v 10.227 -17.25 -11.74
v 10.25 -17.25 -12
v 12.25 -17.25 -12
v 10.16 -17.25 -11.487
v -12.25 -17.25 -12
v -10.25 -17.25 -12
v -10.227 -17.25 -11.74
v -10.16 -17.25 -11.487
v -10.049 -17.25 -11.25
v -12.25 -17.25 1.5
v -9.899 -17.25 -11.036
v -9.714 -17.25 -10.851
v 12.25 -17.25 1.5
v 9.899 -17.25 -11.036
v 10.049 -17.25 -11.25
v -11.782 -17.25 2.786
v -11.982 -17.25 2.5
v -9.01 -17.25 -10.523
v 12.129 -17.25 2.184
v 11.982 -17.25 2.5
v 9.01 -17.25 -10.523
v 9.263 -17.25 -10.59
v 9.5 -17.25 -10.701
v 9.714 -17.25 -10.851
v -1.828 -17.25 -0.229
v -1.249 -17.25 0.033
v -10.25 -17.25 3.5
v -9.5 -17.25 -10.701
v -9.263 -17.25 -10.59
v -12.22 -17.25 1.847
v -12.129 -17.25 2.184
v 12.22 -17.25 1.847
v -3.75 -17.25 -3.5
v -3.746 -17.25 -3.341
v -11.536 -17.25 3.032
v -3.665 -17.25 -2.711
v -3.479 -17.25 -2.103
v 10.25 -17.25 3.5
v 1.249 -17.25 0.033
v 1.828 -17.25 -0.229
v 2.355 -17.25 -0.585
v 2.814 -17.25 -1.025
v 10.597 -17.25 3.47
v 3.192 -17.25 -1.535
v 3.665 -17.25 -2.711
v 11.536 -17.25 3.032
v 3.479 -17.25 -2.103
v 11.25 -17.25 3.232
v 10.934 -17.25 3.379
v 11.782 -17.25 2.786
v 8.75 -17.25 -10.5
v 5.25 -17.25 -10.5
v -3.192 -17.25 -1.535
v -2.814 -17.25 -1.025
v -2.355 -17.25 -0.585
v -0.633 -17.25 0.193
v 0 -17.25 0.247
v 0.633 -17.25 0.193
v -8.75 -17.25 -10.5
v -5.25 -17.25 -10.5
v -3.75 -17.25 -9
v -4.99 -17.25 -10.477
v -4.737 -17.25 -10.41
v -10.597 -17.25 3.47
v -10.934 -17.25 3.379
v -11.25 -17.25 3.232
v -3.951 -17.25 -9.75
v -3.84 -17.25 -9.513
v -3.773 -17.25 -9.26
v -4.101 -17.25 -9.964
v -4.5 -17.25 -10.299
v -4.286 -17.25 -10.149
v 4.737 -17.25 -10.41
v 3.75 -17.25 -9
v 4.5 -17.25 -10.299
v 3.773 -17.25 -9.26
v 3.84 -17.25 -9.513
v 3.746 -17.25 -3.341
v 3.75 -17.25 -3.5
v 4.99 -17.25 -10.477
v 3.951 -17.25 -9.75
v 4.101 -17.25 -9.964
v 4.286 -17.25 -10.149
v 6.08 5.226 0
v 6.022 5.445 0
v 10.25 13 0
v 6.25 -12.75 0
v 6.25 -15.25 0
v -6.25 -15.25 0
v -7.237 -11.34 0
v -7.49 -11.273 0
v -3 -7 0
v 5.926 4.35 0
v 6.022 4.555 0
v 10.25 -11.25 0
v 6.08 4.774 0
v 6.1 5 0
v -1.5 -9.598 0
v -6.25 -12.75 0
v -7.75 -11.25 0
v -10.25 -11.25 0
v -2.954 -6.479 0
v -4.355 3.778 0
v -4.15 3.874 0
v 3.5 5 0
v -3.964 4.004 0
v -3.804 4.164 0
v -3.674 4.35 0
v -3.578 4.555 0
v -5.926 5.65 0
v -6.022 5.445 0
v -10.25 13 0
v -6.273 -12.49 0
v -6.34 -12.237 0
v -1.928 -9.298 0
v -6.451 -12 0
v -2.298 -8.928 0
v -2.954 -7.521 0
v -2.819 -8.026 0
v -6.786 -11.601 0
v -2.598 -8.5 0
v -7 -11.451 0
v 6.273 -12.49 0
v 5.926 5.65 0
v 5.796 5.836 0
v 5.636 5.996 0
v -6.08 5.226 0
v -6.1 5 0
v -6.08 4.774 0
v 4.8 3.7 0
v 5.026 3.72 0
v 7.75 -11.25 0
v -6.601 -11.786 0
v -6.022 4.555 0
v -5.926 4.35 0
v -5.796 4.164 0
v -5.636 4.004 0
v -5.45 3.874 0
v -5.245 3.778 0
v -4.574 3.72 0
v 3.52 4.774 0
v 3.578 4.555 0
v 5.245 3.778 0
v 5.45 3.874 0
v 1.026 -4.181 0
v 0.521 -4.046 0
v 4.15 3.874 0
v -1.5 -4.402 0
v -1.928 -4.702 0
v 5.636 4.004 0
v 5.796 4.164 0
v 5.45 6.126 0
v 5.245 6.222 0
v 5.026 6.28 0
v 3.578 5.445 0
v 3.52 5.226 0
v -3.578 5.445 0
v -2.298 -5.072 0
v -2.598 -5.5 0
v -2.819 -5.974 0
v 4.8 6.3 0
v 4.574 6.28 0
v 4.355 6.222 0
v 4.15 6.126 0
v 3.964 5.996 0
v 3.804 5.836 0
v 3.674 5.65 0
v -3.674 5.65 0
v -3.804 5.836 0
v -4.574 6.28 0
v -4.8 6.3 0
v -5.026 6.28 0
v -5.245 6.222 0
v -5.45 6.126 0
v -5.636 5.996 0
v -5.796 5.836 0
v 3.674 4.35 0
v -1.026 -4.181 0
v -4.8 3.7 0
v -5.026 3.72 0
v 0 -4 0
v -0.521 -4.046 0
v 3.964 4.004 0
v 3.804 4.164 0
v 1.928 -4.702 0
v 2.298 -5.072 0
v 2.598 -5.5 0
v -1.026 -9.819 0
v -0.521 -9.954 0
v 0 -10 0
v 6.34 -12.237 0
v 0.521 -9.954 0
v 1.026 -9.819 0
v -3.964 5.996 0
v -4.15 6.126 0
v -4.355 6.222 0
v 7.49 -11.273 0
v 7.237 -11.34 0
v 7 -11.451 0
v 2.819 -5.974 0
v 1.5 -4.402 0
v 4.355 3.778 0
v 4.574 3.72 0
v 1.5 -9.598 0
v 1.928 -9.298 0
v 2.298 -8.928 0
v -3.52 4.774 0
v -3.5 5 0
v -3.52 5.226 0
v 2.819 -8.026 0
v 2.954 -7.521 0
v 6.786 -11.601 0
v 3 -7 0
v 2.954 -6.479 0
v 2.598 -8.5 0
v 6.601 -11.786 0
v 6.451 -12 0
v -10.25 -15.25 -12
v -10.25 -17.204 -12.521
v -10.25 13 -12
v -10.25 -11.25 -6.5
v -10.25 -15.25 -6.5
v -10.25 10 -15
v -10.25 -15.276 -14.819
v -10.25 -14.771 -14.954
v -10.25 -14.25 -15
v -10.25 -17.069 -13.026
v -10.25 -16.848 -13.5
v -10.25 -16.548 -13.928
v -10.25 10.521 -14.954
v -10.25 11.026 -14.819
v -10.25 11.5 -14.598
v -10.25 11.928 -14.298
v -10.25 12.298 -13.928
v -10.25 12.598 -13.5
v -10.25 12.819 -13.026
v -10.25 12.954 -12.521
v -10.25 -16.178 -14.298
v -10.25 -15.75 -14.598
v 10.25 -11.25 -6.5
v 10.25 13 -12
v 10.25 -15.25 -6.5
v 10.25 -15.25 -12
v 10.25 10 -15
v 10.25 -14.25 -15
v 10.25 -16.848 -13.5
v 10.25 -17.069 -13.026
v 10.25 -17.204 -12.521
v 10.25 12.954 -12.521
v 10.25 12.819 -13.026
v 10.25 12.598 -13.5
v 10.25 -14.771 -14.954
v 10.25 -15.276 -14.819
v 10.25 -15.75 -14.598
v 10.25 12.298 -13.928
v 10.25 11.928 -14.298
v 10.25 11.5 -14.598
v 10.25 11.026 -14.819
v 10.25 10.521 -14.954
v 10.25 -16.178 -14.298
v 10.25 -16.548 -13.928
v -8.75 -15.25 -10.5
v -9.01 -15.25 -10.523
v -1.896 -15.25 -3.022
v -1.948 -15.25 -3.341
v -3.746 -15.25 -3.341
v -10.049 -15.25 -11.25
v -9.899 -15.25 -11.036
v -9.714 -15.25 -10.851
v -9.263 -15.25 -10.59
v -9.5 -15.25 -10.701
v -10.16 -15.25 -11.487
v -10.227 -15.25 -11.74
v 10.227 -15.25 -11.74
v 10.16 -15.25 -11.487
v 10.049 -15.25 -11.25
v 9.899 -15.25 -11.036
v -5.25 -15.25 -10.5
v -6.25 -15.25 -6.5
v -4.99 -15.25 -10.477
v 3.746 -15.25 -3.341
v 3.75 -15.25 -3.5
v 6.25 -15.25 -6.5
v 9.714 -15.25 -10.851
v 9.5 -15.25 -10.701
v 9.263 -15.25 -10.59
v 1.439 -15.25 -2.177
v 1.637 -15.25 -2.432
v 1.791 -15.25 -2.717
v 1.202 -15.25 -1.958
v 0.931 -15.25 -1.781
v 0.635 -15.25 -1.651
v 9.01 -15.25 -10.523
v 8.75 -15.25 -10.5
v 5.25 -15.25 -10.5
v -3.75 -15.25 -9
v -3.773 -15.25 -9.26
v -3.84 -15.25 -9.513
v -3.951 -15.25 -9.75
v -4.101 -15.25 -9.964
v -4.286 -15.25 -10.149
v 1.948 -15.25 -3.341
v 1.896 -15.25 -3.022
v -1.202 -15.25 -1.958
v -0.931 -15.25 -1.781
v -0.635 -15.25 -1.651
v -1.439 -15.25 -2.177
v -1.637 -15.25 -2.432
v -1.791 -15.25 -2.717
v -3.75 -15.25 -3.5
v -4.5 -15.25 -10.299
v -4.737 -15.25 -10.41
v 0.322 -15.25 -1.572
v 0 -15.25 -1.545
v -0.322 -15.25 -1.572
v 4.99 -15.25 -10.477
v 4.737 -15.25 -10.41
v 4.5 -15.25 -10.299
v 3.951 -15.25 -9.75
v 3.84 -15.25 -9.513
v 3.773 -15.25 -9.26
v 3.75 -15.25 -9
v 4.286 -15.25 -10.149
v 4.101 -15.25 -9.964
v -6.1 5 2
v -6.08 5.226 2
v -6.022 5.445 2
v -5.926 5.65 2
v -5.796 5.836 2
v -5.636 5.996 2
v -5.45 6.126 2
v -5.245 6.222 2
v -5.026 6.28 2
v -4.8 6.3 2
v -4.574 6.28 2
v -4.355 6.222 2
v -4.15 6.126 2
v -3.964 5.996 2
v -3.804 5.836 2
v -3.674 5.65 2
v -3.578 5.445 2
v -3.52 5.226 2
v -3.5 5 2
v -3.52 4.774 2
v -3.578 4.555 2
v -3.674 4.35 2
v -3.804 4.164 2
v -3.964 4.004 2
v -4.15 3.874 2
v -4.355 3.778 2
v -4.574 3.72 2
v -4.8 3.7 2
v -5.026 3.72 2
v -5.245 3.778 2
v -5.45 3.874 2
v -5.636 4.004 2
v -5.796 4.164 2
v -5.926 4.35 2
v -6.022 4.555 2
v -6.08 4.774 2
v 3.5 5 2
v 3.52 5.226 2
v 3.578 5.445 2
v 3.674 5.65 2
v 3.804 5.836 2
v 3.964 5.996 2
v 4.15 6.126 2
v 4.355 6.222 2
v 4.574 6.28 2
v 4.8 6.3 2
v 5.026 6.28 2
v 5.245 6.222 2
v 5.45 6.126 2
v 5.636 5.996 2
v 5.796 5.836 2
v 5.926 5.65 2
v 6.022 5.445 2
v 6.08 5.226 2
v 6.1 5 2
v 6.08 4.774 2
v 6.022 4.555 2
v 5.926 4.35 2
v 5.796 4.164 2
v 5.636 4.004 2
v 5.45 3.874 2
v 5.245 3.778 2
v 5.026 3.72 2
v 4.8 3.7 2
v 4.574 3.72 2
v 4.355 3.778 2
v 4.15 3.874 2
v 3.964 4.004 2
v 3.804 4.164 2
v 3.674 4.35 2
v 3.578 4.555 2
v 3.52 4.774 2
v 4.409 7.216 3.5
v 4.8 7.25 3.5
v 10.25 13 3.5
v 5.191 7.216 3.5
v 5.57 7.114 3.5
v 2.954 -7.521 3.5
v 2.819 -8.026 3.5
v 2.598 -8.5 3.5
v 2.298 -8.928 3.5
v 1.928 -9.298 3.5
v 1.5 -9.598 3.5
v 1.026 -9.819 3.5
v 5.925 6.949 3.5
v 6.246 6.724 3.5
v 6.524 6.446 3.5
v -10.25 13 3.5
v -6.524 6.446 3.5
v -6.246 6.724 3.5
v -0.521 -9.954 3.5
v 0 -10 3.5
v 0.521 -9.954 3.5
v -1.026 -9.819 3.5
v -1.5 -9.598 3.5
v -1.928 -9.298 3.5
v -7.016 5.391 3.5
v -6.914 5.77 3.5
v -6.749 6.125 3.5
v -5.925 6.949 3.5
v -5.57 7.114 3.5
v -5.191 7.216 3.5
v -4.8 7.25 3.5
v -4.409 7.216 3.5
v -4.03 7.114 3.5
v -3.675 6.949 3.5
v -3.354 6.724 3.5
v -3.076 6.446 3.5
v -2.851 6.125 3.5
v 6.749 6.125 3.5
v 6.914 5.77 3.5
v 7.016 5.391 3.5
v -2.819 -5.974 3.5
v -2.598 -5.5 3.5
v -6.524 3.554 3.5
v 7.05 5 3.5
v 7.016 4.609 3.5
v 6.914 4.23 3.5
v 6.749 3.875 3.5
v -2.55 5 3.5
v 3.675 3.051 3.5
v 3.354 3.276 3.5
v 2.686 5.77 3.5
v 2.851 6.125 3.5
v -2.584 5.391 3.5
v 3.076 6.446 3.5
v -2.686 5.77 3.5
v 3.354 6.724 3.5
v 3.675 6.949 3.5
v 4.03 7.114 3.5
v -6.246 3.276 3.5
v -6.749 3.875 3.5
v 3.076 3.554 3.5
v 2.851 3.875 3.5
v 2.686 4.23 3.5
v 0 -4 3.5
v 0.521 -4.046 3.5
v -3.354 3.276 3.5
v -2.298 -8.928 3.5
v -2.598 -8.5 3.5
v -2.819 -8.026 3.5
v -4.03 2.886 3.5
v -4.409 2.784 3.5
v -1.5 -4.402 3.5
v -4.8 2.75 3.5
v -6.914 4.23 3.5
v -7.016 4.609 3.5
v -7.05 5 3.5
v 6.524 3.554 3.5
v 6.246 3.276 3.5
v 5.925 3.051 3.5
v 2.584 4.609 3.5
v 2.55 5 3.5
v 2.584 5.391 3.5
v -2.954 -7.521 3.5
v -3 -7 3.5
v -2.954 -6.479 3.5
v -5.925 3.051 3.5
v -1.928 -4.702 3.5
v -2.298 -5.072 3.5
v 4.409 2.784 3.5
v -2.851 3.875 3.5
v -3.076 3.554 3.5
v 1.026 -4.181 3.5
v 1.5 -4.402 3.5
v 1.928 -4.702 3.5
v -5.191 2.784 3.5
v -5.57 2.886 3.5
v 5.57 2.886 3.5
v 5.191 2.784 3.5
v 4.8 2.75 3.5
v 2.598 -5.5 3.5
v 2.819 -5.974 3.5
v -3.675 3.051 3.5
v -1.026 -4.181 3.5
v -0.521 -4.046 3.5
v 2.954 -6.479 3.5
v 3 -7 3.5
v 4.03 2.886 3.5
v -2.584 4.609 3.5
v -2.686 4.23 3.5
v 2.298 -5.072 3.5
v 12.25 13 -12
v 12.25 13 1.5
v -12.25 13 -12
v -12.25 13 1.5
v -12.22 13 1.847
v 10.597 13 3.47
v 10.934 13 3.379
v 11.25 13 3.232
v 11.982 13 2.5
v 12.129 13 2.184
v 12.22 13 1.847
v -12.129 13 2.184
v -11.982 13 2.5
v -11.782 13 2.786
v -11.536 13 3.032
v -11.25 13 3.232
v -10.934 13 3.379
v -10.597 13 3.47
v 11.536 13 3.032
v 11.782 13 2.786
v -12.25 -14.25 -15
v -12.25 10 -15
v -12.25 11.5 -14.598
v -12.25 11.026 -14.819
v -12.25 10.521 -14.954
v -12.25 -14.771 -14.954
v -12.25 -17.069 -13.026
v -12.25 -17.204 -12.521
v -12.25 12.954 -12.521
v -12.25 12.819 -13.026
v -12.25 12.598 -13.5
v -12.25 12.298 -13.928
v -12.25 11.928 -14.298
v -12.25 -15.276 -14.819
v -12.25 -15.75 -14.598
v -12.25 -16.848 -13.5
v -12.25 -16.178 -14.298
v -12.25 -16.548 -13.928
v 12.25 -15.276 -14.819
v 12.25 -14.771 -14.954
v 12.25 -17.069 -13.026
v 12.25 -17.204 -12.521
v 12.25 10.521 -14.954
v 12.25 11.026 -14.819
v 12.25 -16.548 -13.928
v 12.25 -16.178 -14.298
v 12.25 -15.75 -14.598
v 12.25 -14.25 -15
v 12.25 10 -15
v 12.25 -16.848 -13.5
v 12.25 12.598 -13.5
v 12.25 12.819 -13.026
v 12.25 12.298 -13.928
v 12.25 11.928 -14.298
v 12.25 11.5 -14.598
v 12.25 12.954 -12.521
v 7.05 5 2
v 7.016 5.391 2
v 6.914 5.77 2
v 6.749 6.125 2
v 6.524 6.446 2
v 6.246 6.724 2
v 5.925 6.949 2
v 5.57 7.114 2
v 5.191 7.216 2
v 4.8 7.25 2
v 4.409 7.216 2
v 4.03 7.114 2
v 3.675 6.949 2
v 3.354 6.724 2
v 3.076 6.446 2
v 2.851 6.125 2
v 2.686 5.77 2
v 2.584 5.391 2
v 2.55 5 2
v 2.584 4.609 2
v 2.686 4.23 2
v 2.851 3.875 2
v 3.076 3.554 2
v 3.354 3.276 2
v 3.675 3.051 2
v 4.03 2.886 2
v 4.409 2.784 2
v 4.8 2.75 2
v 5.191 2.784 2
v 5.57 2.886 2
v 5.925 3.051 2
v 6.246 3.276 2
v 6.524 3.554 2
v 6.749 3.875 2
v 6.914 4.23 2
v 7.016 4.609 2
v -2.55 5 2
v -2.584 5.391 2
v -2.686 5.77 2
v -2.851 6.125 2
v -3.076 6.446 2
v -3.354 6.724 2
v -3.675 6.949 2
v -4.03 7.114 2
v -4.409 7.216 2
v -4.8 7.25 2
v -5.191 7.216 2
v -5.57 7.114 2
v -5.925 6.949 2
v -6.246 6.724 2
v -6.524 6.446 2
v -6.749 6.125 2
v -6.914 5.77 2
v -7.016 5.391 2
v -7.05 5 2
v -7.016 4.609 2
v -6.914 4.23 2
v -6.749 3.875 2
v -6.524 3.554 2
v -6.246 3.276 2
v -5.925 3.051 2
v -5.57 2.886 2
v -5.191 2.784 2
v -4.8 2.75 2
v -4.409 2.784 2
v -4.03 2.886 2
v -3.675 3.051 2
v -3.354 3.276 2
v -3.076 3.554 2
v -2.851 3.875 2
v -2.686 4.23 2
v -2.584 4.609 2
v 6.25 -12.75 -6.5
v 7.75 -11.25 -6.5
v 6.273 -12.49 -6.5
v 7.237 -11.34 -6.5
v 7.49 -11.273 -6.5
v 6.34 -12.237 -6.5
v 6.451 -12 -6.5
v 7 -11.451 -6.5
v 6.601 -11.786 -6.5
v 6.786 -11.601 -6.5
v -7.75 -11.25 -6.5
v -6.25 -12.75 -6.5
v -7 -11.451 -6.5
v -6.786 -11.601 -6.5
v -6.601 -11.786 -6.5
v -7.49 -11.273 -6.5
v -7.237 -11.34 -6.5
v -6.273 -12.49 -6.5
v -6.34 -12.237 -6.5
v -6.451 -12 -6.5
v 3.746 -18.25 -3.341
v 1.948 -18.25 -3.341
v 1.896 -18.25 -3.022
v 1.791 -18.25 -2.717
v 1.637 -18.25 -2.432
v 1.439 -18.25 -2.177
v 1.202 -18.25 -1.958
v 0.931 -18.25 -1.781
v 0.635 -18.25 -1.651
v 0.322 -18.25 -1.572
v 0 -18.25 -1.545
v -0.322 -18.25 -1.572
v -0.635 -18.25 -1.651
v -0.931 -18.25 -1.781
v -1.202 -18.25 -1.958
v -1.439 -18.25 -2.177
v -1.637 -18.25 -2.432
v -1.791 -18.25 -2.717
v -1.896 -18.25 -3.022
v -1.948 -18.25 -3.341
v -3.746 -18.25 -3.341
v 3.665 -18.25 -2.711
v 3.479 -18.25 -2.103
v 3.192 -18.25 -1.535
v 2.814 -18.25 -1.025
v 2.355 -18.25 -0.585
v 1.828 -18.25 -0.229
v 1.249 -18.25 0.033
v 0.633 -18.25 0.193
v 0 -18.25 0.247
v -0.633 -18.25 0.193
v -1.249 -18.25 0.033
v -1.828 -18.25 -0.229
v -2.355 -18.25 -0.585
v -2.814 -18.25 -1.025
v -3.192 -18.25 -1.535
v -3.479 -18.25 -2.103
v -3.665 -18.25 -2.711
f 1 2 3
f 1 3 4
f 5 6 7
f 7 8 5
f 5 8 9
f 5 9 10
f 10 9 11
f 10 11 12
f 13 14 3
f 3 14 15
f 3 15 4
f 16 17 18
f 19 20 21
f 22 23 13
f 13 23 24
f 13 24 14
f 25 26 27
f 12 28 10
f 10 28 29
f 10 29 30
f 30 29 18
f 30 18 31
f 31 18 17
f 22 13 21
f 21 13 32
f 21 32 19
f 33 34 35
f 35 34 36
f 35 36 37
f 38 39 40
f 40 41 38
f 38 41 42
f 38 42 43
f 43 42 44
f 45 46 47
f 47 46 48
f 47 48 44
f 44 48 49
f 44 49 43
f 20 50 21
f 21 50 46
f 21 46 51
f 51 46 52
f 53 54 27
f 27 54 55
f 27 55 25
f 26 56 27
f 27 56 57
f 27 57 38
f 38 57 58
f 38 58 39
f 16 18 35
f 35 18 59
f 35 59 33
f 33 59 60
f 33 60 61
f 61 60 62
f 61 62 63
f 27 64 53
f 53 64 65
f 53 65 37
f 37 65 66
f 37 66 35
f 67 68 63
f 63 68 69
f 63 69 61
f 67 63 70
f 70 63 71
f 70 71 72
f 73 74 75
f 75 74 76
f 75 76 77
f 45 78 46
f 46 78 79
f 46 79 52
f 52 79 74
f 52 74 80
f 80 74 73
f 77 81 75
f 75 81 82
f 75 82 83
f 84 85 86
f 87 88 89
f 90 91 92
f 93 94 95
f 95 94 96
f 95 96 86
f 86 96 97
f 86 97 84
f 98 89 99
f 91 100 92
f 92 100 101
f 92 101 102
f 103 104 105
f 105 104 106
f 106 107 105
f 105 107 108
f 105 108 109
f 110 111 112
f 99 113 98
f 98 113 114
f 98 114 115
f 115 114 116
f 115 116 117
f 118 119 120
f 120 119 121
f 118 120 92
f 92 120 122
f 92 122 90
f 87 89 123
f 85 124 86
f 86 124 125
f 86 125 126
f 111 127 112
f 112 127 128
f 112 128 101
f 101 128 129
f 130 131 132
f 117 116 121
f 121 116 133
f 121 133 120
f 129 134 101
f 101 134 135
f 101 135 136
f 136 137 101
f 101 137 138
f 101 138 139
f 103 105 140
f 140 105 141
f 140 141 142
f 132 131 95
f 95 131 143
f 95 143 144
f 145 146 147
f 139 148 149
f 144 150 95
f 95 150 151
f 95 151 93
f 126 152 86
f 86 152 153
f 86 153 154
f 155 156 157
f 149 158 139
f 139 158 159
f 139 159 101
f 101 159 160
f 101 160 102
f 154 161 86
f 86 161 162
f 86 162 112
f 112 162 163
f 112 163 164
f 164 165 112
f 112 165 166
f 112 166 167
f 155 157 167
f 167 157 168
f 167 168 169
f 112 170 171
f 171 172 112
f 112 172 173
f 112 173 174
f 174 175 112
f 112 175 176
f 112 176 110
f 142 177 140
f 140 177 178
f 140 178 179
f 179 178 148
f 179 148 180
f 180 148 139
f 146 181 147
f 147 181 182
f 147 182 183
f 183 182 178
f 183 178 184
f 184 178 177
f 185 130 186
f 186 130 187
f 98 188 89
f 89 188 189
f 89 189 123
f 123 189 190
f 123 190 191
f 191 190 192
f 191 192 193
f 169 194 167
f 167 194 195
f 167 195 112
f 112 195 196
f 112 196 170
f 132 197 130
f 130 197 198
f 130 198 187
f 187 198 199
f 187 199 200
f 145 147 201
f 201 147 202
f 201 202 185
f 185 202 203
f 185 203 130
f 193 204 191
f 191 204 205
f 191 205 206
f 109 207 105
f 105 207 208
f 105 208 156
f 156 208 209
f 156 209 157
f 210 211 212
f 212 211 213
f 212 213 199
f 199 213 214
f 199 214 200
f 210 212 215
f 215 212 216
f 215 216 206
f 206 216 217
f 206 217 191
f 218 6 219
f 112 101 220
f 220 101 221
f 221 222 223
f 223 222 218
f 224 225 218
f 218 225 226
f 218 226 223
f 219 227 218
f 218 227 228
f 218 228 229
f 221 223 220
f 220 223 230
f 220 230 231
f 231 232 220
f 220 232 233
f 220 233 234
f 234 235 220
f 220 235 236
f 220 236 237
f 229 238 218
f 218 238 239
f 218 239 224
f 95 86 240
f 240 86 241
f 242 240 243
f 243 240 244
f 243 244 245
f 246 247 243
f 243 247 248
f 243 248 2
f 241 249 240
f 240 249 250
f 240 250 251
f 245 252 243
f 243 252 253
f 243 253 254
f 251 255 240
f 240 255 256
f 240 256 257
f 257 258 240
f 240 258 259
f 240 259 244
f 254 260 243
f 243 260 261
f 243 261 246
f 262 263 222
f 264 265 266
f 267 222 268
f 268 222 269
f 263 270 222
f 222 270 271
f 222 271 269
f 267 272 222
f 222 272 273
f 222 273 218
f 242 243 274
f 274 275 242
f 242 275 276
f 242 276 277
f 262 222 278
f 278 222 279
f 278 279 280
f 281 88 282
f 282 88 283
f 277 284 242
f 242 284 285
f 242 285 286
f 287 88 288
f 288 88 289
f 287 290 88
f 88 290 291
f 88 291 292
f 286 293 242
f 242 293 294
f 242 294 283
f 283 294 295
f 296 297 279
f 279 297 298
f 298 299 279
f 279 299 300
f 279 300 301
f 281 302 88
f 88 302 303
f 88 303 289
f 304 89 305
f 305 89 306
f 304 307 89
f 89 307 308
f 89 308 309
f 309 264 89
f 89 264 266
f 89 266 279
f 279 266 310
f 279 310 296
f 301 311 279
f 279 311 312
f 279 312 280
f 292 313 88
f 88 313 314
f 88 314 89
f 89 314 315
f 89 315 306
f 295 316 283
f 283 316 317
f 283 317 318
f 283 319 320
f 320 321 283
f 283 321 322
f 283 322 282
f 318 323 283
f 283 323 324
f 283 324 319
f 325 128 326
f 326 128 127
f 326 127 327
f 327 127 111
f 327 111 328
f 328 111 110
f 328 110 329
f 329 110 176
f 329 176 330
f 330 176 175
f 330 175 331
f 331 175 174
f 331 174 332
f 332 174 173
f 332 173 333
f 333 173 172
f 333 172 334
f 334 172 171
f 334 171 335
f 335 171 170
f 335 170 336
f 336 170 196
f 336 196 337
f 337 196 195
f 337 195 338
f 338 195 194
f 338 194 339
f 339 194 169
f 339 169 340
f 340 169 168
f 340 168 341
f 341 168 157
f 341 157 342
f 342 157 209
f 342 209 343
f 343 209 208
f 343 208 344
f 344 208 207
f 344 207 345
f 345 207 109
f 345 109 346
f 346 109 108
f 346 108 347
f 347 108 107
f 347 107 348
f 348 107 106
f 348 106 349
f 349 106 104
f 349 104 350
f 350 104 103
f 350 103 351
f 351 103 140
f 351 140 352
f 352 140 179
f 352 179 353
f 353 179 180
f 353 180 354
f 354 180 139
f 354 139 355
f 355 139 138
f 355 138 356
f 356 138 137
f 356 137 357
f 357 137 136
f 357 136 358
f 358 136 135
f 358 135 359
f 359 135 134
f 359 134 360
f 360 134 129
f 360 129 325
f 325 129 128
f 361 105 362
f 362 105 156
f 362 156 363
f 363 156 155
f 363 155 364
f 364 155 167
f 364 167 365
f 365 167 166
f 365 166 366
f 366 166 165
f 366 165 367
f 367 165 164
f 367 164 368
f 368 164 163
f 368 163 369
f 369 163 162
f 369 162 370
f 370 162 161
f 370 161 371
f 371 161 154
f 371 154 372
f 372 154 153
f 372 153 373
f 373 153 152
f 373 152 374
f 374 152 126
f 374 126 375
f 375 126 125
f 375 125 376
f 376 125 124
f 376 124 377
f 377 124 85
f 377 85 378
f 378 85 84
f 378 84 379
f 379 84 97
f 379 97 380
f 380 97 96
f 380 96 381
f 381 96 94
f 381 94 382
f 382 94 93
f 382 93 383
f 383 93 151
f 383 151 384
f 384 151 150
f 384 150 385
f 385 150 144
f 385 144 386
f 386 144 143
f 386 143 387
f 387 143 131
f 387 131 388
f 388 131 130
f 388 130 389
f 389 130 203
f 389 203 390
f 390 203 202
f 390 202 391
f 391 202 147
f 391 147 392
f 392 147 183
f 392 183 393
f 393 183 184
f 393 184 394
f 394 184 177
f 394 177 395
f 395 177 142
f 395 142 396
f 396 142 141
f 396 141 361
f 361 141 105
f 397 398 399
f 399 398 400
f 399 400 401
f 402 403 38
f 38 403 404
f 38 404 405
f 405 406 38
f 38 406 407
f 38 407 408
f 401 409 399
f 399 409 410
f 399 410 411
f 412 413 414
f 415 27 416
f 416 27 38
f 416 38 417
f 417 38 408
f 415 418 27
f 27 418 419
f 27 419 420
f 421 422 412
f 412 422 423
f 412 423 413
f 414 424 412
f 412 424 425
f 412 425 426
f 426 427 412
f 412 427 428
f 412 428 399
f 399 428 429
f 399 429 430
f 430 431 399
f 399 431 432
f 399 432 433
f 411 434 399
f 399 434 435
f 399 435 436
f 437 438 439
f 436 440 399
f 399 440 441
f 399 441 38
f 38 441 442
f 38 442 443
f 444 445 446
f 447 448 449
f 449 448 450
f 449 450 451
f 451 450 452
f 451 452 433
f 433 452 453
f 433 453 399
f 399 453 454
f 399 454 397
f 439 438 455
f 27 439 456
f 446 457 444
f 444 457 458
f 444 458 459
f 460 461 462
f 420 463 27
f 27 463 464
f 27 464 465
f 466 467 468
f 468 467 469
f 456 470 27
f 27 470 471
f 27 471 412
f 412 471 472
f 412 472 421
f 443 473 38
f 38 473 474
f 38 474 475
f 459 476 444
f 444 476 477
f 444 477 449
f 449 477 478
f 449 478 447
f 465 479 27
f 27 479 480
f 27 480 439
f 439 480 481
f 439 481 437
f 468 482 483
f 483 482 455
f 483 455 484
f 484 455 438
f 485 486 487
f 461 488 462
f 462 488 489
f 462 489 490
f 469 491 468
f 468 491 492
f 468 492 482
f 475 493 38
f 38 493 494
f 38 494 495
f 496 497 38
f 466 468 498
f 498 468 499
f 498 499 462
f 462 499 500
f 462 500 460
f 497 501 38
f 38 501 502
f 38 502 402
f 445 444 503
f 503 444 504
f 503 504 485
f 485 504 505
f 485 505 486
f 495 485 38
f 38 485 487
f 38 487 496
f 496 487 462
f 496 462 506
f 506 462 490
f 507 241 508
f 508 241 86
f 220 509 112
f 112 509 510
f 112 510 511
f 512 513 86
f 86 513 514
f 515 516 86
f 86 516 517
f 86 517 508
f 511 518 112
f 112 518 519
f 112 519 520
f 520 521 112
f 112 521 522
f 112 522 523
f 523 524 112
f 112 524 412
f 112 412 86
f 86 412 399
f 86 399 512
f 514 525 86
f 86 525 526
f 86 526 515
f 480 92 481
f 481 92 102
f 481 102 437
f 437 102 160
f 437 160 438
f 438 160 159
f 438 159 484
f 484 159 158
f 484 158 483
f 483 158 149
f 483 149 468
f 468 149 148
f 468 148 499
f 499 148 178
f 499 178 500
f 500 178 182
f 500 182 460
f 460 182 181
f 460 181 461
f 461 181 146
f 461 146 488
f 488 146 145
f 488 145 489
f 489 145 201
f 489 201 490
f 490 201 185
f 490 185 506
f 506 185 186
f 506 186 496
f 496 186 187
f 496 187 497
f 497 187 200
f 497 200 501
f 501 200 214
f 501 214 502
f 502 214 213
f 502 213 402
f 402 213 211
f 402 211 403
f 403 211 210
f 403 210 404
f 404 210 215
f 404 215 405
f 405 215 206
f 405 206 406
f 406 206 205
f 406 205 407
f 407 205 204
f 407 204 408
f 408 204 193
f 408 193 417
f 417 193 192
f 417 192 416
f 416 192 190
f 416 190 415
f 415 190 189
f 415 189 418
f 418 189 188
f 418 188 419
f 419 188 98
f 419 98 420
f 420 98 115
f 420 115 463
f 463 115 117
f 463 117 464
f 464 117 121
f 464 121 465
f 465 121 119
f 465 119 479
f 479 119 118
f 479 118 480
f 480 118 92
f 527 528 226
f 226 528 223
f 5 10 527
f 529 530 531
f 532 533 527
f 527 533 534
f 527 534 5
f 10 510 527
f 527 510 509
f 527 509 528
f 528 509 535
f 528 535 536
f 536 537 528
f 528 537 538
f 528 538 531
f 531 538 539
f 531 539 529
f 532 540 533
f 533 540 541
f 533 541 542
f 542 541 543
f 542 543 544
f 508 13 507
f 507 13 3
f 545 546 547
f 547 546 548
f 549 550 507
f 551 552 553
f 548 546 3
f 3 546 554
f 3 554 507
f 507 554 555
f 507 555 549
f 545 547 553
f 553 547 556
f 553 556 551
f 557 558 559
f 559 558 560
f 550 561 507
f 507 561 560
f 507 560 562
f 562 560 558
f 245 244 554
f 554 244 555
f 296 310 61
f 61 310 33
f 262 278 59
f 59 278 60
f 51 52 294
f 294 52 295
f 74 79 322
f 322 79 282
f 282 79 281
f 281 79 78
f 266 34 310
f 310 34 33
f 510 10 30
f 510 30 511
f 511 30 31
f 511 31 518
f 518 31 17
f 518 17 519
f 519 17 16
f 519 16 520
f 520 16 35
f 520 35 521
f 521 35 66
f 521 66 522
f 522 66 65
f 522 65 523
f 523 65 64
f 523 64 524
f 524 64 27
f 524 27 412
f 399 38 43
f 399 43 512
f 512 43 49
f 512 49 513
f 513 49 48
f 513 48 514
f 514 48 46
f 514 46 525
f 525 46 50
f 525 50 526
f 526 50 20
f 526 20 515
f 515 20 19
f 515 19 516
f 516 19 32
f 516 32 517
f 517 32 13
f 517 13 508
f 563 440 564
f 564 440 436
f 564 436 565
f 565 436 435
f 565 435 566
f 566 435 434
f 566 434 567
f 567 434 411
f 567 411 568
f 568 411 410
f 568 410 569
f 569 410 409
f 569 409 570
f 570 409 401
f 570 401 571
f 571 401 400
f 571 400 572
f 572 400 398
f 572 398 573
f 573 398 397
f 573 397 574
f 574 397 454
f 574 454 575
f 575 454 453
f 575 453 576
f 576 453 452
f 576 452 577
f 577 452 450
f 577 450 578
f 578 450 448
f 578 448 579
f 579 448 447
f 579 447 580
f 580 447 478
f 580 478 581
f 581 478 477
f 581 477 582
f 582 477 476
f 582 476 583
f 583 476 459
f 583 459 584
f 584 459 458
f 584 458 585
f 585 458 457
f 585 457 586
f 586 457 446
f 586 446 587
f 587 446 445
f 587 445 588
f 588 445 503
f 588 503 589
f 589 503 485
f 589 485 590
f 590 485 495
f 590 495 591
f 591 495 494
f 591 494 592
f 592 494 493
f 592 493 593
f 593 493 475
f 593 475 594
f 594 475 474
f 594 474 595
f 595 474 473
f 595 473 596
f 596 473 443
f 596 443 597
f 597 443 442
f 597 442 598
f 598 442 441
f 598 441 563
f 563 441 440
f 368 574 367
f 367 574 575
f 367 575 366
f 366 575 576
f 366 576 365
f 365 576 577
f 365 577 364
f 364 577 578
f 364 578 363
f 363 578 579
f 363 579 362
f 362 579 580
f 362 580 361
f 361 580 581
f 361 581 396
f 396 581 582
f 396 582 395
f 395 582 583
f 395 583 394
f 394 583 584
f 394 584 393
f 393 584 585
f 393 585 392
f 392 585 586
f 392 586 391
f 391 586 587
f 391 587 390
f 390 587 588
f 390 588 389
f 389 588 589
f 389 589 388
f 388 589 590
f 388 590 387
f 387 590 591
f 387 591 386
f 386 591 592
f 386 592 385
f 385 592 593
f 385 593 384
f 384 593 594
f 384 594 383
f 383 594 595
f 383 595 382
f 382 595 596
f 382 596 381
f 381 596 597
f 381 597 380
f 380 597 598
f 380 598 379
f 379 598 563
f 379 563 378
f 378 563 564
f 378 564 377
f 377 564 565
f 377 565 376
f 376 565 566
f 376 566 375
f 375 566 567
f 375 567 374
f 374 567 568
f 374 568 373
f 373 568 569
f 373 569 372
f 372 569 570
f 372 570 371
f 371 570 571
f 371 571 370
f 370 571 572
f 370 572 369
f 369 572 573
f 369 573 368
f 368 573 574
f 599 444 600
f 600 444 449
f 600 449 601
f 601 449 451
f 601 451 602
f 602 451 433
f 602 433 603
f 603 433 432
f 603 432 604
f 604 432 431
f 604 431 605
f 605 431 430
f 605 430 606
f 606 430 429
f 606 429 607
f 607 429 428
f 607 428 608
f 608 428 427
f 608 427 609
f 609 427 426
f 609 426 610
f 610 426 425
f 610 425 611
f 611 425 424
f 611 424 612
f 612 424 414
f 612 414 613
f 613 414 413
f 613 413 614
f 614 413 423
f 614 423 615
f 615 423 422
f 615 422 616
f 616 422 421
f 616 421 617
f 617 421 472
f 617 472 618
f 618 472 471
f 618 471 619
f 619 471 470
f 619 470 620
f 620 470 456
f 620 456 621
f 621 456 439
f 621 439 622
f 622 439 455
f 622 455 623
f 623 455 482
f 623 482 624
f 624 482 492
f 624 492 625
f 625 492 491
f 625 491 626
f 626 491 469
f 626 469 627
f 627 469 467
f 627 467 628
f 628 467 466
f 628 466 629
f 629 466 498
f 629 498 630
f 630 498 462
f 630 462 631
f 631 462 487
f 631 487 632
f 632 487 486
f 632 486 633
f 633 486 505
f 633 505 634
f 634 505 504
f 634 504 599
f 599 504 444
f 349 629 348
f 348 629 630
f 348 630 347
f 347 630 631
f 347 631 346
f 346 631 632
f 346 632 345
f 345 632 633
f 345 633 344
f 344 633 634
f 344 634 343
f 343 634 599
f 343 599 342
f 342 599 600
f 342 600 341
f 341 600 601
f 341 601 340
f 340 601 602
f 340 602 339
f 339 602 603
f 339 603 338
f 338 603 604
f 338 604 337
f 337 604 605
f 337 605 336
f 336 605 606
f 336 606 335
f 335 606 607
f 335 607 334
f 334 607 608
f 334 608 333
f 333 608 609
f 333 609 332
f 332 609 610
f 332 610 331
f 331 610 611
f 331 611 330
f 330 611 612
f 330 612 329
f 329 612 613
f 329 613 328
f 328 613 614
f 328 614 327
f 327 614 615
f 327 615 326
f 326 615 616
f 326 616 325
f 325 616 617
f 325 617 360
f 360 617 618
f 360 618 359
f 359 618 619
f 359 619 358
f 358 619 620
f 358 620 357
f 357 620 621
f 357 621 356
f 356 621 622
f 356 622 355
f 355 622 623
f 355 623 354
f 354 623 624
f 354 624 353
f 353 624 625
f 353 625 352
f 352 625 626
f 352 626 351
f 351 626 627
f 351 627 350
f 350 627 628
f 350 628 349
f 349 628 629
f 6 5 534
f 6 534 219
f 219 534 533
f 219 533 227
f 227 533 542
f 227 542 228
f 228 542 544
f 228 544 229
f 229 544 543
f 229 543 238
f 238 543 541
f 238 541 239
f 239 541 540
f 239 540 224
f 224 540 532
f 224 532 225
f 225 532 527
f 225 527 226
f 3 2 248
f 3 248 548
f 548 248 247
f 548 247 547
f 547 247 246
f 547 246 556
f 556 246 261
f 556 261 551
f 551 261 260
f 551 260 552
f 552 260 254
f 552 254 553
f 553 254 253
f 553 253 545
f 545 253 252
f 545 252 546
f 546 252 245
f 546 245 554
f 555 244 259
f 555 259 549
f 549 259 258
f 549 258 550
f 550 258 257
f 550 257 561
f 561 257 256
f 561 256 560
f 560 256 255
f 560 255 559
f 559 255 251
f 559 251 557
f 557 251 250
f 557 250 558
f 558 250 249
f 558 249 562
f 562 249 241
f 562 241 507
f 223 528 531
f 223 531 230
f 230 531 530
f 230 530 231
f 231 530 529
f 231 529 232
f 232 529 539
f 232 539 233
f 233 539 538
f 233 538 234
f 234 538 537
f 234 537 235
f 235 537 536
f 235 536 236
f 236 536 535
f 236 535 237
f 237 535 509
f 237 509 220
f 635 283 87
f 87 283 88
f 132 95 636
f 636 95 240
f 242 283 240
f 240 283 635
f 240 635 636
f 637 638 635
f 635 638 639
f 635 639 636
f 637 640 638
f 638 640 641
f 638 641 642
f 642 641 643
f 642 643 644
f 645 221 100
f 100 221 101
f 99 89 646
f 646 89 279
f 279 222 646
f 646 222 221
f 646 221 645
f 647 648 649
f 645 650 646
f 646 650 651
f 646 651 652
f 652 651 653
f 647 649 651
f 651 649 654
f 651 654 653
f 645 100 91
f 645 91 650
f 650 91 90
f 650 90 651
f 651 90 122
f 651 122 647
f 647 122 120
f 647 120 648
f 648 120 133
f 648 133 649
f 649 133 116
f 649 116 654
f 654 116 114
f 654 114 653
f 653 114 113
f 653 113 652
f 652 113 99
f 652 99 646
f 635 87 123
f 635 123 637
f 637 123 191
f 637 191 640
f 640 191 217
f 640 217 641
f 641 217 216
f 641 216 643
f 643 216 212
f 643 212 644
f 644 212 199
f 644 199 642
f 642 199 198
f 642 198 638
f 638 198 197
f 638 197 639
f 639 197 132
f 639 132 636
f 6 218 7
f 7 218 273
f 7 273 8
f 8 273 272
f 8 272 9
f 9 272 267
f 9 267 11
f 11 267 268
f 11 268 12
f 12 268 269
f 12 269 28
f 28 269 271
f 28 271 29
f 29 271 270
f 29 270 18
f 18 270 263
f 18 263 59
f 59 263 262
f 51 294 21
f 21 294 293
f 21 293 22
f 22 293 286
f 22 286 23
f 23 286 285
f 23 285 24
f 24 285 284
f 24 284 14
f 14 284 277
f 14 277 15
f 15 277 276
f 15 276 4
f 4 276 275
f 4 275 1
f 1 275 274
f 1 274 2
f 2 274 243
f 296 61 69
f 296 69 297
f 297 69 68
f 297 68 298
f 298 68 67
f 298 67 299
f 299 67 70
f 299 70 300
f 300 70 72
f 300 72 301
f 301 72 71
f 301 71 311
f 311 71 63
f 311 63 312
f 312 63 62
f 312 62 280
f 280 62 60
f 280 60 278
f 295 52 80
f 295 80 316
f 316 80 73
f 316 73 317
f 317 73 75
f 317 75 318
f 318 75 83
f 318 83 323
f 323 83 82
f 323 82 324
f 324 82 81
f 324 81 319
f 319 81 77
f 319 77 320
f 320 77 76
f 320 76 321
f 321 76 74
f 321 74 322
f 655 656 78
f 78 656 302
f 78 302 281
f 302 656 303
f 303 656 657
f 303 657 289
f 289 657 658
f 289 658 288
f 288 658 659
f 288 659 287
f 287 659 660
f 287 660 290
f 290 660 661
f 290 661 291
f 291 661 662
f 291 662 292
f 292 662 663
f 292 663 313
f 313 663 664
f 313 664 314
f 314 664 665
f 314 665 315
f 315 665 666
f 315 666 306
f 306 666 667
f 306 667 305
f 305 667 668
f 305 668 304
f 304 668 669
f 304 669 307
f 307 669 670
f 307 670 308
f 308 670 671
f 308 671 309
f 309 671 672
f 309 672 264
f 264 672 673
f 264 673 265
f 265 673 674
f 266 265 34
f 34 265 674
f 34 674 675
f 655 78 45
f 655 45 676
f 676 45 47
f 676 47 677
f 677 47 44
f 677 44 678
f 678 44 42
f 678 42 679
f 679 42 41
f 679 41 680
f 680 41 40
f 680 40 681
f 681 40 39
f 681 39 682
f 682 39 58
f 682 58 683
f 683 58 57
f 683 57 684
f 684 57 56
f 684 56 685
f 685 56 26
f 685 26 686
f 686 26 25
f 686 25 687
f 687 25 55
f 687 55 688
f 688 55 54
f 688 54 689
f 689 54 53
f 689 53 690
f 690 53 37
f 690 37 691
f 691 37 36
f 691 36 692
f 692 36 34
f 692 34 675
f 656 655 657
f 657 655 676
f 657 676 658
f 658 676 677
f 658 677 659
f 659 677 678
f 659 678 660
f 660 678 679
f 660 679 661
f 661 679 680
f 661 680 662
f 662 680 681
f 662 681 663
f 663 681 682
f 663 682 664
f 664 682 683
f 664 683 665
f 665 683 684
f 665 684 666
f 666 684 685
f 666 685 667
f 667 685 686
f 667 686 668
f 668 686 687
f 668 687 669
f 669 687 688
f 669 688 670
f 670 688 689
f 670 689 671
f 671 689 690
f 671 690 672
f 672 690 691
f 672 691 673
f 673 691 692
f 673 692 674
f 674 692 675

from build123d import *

# Parameters (mm, degrees)
SKETCH1_W           = 20.5
SKETCH1_H           = 30.25
SKETCH1_R           = 1.3
SKETCH1_R_2         = 3
BOSS_EXTRUDE1_DEPTH = 3.5
SKETCH2_W           = 2
SKETCH2_H           = 18.5
BOSS_EXTRUDE2_DEPTH = 30.25
SKETCH3_W           = 6.5
SKETCH3_H           = 10.5
BOSS_EXTRUDE3_DEPTH = 2
FILLET1_R           = 3.5
FILLET2_R           = 2
SKETCH4_R           = 2.25
CUT_EXTRUDE1_DEPTH  = 1.5
FILLET4_R           = 3
SKETCH9_W           = 4
SKETCH9_H           = 4
BOSS_EXTRUDE4_DEPTH = 6.5
FILLET6_R           = 1.5
BOSS_EXTRUDE5_DEPTH = 2
BOSS_EXTRUDE6_DEPTH = 1


with BuildPart() as part:
    # Sketch1 → Boss-Extrude1 (new body)
    with BuildSketch(Plane.XY):
        with Locations((0, -2.125)):
            Rectangle(SKETCH1_W, SKETCH1_H)
        with Locations((-4.8, 5)):
            Circle(SKETCH1_R, mode=Mode.SUBTRACT)
        with Locations((4.8, 5)):
            Circle(SKETCH1_R, mode=Mode.SUBTRACT)
        with Locations((0, -7)):
            Circle(SKETCH1_R_2, mode=Mode.SUBTRACT)
    extrude(amount=BOSS_EXTRUDE1_DEPTH)

    # Sketch2 → Boss-Extrude2 (add)
    with BuildSketch(Plane(origin=(0, -17.25, 0), x_dir=(-1, 0, 0), z_dir=(0, -1, 0))):
        with Locations((11.25, 5.75)):
            Rectangle(SKETCH2_W, SKETCH2_H)
        with Locations((-11.25, 5.75)):
            Rectangle(SKETCH2_W, SKETCH2_H)
    extrude(amount=-BOSS_EXTRUDE2_DEPTH)

    # Sketch3 → Boss-Extrude3 (add)
    with BuildSketch(Plane.XZ.offset(17.25)):
        with Locations((-7, -5.25)):
            Rectangle(SKETCH3_W, SKETCH3_H)
        with Locations((7, -5.25)):
            Rectangle(SKETCH3_W, SKETCH3_H)
    extrude(amount=-BOSS_EXTRUDE3_DEPTH)

    # Fillet1
    fillet1_edges = [part.edges().sort_by_distance(p)[0] for p in [
        (-3.75, -16.25, 0),
        (3.75, -16.25, 0),
    ]]
    fillet(fillet1_edges, radius=FILLET1_R)

    # Fillet2
    fillet2_edges = [part.edges().sort_by_distance(p)[0] for p in [
        (-12.25, -2.125, 3.5),
        (12.25, -2.125, 3.5),
    ]]
    fillet(fillet2_edges, radius=FILLET2_R)

    # Sketch4 → Cut-Extrude1 (cut)
    with BuildSketch(Plane.XY.offset(3.5)):
        with Locations((-4.8, 5)):
            Circle(SKETCH4_R)
        with Locations((4.8, 5)):
            Circle(SKETCH4_R)
    extrude(amount=-CUT_EXTRUDE1_DEPTH, mode=Mode.SUBTRACT)

    # Fillet4
    fillet4_edges = [part.edges().sort_by_distance(p)[0] for p in [
        (-11.25, 13, -15),
        (-11.25, -17.25, -15),
        (11.25, 13, -15),
        (11.25, -17.25, -15),
    ]]
    fillet(fillet4_edges, radius=FILLET4_R)

    # Sketch9 → Boss-Extrude4 (add)
    with BuildSketch(Plane(origin=(0, 0, 0), x_dir=(-1, 0, 0), z_dir=(0, 0, -1))):
        with Locations((-8.25, -13.25)):
            Rectangle(SKETCH9_W, SKETCH9_H)
        with Locations((8.25, -13.25)):
            Rectangle(SKETCH9_W, SKETCH9_H)
    extrude(amount=BOSS_EXTRUDE4_DEPTH)

    # Fillet6
    fillet6_edges = [part.edges().sort_by_distance(p)[0] for p in [
        (-6.25, -11.25, -3.25),
        (6.25, -11.25, -3.25),
        (-10.25, -16.25, -10.5),
        (10.25, -16.25, -10.5),
        (-3.75, -16.25, -10.5),
        (3.75, -16.25, -10.5),
    ]]
    fillet(fillet6_edges, radius=FILLET6_R)

    # Sketch10 → Boss-Extrude5 (add)
    with BuildSketch(Plane.XZ.offset(17.25)):
        with BuildLine():
            Line((-0.25, 0), (0.25, 0))
            ThreePointArc((0.25, 0), (2.668052064, -0.969580229), (3.746392428, -3.341129019))
            Line((3.746392428, -3.341129019), (1.948302942, -3.341129019))
            ThreePointArc((1.948302942, -3.341129019), (0, -1.545230361), (-1.948302942, -3.341129019))
            Line((-1.948302942, -3.341129019), (-3.746392428, -3.341129019))
            ThreePointArc((-3.746392428, -3.341129019), (-2.668052064, -0.969580229), (-0.25, 0))
        make_face()
    extrude(amount=-BOSS_EXTRUDE5_DEPTH)

    # Sketch11 → Boss-Extrude6 (add)
    with BuildSketch(Plane.XZ.offset(17.25)):
        with BuildLine():
            Line((-1.948302942, -3.341129019), (-3.746392428, -3.341129019))
            ThreePointArc((-3.746392428, -3.341129019), (0, 0.246607561), (3.746392428, -3.341129019))
            Line((3.746392428, -3.341129019), (1.948302942, -3.341129019))
            ThreePointArc((1.948302942, -3.341129019), (0, -1.545230361), (-1.948302942, -3.341129019))
        make_face()
    extrude(amount=BOSS_EXTRUDE6_DEPTH)


solid = part.part
